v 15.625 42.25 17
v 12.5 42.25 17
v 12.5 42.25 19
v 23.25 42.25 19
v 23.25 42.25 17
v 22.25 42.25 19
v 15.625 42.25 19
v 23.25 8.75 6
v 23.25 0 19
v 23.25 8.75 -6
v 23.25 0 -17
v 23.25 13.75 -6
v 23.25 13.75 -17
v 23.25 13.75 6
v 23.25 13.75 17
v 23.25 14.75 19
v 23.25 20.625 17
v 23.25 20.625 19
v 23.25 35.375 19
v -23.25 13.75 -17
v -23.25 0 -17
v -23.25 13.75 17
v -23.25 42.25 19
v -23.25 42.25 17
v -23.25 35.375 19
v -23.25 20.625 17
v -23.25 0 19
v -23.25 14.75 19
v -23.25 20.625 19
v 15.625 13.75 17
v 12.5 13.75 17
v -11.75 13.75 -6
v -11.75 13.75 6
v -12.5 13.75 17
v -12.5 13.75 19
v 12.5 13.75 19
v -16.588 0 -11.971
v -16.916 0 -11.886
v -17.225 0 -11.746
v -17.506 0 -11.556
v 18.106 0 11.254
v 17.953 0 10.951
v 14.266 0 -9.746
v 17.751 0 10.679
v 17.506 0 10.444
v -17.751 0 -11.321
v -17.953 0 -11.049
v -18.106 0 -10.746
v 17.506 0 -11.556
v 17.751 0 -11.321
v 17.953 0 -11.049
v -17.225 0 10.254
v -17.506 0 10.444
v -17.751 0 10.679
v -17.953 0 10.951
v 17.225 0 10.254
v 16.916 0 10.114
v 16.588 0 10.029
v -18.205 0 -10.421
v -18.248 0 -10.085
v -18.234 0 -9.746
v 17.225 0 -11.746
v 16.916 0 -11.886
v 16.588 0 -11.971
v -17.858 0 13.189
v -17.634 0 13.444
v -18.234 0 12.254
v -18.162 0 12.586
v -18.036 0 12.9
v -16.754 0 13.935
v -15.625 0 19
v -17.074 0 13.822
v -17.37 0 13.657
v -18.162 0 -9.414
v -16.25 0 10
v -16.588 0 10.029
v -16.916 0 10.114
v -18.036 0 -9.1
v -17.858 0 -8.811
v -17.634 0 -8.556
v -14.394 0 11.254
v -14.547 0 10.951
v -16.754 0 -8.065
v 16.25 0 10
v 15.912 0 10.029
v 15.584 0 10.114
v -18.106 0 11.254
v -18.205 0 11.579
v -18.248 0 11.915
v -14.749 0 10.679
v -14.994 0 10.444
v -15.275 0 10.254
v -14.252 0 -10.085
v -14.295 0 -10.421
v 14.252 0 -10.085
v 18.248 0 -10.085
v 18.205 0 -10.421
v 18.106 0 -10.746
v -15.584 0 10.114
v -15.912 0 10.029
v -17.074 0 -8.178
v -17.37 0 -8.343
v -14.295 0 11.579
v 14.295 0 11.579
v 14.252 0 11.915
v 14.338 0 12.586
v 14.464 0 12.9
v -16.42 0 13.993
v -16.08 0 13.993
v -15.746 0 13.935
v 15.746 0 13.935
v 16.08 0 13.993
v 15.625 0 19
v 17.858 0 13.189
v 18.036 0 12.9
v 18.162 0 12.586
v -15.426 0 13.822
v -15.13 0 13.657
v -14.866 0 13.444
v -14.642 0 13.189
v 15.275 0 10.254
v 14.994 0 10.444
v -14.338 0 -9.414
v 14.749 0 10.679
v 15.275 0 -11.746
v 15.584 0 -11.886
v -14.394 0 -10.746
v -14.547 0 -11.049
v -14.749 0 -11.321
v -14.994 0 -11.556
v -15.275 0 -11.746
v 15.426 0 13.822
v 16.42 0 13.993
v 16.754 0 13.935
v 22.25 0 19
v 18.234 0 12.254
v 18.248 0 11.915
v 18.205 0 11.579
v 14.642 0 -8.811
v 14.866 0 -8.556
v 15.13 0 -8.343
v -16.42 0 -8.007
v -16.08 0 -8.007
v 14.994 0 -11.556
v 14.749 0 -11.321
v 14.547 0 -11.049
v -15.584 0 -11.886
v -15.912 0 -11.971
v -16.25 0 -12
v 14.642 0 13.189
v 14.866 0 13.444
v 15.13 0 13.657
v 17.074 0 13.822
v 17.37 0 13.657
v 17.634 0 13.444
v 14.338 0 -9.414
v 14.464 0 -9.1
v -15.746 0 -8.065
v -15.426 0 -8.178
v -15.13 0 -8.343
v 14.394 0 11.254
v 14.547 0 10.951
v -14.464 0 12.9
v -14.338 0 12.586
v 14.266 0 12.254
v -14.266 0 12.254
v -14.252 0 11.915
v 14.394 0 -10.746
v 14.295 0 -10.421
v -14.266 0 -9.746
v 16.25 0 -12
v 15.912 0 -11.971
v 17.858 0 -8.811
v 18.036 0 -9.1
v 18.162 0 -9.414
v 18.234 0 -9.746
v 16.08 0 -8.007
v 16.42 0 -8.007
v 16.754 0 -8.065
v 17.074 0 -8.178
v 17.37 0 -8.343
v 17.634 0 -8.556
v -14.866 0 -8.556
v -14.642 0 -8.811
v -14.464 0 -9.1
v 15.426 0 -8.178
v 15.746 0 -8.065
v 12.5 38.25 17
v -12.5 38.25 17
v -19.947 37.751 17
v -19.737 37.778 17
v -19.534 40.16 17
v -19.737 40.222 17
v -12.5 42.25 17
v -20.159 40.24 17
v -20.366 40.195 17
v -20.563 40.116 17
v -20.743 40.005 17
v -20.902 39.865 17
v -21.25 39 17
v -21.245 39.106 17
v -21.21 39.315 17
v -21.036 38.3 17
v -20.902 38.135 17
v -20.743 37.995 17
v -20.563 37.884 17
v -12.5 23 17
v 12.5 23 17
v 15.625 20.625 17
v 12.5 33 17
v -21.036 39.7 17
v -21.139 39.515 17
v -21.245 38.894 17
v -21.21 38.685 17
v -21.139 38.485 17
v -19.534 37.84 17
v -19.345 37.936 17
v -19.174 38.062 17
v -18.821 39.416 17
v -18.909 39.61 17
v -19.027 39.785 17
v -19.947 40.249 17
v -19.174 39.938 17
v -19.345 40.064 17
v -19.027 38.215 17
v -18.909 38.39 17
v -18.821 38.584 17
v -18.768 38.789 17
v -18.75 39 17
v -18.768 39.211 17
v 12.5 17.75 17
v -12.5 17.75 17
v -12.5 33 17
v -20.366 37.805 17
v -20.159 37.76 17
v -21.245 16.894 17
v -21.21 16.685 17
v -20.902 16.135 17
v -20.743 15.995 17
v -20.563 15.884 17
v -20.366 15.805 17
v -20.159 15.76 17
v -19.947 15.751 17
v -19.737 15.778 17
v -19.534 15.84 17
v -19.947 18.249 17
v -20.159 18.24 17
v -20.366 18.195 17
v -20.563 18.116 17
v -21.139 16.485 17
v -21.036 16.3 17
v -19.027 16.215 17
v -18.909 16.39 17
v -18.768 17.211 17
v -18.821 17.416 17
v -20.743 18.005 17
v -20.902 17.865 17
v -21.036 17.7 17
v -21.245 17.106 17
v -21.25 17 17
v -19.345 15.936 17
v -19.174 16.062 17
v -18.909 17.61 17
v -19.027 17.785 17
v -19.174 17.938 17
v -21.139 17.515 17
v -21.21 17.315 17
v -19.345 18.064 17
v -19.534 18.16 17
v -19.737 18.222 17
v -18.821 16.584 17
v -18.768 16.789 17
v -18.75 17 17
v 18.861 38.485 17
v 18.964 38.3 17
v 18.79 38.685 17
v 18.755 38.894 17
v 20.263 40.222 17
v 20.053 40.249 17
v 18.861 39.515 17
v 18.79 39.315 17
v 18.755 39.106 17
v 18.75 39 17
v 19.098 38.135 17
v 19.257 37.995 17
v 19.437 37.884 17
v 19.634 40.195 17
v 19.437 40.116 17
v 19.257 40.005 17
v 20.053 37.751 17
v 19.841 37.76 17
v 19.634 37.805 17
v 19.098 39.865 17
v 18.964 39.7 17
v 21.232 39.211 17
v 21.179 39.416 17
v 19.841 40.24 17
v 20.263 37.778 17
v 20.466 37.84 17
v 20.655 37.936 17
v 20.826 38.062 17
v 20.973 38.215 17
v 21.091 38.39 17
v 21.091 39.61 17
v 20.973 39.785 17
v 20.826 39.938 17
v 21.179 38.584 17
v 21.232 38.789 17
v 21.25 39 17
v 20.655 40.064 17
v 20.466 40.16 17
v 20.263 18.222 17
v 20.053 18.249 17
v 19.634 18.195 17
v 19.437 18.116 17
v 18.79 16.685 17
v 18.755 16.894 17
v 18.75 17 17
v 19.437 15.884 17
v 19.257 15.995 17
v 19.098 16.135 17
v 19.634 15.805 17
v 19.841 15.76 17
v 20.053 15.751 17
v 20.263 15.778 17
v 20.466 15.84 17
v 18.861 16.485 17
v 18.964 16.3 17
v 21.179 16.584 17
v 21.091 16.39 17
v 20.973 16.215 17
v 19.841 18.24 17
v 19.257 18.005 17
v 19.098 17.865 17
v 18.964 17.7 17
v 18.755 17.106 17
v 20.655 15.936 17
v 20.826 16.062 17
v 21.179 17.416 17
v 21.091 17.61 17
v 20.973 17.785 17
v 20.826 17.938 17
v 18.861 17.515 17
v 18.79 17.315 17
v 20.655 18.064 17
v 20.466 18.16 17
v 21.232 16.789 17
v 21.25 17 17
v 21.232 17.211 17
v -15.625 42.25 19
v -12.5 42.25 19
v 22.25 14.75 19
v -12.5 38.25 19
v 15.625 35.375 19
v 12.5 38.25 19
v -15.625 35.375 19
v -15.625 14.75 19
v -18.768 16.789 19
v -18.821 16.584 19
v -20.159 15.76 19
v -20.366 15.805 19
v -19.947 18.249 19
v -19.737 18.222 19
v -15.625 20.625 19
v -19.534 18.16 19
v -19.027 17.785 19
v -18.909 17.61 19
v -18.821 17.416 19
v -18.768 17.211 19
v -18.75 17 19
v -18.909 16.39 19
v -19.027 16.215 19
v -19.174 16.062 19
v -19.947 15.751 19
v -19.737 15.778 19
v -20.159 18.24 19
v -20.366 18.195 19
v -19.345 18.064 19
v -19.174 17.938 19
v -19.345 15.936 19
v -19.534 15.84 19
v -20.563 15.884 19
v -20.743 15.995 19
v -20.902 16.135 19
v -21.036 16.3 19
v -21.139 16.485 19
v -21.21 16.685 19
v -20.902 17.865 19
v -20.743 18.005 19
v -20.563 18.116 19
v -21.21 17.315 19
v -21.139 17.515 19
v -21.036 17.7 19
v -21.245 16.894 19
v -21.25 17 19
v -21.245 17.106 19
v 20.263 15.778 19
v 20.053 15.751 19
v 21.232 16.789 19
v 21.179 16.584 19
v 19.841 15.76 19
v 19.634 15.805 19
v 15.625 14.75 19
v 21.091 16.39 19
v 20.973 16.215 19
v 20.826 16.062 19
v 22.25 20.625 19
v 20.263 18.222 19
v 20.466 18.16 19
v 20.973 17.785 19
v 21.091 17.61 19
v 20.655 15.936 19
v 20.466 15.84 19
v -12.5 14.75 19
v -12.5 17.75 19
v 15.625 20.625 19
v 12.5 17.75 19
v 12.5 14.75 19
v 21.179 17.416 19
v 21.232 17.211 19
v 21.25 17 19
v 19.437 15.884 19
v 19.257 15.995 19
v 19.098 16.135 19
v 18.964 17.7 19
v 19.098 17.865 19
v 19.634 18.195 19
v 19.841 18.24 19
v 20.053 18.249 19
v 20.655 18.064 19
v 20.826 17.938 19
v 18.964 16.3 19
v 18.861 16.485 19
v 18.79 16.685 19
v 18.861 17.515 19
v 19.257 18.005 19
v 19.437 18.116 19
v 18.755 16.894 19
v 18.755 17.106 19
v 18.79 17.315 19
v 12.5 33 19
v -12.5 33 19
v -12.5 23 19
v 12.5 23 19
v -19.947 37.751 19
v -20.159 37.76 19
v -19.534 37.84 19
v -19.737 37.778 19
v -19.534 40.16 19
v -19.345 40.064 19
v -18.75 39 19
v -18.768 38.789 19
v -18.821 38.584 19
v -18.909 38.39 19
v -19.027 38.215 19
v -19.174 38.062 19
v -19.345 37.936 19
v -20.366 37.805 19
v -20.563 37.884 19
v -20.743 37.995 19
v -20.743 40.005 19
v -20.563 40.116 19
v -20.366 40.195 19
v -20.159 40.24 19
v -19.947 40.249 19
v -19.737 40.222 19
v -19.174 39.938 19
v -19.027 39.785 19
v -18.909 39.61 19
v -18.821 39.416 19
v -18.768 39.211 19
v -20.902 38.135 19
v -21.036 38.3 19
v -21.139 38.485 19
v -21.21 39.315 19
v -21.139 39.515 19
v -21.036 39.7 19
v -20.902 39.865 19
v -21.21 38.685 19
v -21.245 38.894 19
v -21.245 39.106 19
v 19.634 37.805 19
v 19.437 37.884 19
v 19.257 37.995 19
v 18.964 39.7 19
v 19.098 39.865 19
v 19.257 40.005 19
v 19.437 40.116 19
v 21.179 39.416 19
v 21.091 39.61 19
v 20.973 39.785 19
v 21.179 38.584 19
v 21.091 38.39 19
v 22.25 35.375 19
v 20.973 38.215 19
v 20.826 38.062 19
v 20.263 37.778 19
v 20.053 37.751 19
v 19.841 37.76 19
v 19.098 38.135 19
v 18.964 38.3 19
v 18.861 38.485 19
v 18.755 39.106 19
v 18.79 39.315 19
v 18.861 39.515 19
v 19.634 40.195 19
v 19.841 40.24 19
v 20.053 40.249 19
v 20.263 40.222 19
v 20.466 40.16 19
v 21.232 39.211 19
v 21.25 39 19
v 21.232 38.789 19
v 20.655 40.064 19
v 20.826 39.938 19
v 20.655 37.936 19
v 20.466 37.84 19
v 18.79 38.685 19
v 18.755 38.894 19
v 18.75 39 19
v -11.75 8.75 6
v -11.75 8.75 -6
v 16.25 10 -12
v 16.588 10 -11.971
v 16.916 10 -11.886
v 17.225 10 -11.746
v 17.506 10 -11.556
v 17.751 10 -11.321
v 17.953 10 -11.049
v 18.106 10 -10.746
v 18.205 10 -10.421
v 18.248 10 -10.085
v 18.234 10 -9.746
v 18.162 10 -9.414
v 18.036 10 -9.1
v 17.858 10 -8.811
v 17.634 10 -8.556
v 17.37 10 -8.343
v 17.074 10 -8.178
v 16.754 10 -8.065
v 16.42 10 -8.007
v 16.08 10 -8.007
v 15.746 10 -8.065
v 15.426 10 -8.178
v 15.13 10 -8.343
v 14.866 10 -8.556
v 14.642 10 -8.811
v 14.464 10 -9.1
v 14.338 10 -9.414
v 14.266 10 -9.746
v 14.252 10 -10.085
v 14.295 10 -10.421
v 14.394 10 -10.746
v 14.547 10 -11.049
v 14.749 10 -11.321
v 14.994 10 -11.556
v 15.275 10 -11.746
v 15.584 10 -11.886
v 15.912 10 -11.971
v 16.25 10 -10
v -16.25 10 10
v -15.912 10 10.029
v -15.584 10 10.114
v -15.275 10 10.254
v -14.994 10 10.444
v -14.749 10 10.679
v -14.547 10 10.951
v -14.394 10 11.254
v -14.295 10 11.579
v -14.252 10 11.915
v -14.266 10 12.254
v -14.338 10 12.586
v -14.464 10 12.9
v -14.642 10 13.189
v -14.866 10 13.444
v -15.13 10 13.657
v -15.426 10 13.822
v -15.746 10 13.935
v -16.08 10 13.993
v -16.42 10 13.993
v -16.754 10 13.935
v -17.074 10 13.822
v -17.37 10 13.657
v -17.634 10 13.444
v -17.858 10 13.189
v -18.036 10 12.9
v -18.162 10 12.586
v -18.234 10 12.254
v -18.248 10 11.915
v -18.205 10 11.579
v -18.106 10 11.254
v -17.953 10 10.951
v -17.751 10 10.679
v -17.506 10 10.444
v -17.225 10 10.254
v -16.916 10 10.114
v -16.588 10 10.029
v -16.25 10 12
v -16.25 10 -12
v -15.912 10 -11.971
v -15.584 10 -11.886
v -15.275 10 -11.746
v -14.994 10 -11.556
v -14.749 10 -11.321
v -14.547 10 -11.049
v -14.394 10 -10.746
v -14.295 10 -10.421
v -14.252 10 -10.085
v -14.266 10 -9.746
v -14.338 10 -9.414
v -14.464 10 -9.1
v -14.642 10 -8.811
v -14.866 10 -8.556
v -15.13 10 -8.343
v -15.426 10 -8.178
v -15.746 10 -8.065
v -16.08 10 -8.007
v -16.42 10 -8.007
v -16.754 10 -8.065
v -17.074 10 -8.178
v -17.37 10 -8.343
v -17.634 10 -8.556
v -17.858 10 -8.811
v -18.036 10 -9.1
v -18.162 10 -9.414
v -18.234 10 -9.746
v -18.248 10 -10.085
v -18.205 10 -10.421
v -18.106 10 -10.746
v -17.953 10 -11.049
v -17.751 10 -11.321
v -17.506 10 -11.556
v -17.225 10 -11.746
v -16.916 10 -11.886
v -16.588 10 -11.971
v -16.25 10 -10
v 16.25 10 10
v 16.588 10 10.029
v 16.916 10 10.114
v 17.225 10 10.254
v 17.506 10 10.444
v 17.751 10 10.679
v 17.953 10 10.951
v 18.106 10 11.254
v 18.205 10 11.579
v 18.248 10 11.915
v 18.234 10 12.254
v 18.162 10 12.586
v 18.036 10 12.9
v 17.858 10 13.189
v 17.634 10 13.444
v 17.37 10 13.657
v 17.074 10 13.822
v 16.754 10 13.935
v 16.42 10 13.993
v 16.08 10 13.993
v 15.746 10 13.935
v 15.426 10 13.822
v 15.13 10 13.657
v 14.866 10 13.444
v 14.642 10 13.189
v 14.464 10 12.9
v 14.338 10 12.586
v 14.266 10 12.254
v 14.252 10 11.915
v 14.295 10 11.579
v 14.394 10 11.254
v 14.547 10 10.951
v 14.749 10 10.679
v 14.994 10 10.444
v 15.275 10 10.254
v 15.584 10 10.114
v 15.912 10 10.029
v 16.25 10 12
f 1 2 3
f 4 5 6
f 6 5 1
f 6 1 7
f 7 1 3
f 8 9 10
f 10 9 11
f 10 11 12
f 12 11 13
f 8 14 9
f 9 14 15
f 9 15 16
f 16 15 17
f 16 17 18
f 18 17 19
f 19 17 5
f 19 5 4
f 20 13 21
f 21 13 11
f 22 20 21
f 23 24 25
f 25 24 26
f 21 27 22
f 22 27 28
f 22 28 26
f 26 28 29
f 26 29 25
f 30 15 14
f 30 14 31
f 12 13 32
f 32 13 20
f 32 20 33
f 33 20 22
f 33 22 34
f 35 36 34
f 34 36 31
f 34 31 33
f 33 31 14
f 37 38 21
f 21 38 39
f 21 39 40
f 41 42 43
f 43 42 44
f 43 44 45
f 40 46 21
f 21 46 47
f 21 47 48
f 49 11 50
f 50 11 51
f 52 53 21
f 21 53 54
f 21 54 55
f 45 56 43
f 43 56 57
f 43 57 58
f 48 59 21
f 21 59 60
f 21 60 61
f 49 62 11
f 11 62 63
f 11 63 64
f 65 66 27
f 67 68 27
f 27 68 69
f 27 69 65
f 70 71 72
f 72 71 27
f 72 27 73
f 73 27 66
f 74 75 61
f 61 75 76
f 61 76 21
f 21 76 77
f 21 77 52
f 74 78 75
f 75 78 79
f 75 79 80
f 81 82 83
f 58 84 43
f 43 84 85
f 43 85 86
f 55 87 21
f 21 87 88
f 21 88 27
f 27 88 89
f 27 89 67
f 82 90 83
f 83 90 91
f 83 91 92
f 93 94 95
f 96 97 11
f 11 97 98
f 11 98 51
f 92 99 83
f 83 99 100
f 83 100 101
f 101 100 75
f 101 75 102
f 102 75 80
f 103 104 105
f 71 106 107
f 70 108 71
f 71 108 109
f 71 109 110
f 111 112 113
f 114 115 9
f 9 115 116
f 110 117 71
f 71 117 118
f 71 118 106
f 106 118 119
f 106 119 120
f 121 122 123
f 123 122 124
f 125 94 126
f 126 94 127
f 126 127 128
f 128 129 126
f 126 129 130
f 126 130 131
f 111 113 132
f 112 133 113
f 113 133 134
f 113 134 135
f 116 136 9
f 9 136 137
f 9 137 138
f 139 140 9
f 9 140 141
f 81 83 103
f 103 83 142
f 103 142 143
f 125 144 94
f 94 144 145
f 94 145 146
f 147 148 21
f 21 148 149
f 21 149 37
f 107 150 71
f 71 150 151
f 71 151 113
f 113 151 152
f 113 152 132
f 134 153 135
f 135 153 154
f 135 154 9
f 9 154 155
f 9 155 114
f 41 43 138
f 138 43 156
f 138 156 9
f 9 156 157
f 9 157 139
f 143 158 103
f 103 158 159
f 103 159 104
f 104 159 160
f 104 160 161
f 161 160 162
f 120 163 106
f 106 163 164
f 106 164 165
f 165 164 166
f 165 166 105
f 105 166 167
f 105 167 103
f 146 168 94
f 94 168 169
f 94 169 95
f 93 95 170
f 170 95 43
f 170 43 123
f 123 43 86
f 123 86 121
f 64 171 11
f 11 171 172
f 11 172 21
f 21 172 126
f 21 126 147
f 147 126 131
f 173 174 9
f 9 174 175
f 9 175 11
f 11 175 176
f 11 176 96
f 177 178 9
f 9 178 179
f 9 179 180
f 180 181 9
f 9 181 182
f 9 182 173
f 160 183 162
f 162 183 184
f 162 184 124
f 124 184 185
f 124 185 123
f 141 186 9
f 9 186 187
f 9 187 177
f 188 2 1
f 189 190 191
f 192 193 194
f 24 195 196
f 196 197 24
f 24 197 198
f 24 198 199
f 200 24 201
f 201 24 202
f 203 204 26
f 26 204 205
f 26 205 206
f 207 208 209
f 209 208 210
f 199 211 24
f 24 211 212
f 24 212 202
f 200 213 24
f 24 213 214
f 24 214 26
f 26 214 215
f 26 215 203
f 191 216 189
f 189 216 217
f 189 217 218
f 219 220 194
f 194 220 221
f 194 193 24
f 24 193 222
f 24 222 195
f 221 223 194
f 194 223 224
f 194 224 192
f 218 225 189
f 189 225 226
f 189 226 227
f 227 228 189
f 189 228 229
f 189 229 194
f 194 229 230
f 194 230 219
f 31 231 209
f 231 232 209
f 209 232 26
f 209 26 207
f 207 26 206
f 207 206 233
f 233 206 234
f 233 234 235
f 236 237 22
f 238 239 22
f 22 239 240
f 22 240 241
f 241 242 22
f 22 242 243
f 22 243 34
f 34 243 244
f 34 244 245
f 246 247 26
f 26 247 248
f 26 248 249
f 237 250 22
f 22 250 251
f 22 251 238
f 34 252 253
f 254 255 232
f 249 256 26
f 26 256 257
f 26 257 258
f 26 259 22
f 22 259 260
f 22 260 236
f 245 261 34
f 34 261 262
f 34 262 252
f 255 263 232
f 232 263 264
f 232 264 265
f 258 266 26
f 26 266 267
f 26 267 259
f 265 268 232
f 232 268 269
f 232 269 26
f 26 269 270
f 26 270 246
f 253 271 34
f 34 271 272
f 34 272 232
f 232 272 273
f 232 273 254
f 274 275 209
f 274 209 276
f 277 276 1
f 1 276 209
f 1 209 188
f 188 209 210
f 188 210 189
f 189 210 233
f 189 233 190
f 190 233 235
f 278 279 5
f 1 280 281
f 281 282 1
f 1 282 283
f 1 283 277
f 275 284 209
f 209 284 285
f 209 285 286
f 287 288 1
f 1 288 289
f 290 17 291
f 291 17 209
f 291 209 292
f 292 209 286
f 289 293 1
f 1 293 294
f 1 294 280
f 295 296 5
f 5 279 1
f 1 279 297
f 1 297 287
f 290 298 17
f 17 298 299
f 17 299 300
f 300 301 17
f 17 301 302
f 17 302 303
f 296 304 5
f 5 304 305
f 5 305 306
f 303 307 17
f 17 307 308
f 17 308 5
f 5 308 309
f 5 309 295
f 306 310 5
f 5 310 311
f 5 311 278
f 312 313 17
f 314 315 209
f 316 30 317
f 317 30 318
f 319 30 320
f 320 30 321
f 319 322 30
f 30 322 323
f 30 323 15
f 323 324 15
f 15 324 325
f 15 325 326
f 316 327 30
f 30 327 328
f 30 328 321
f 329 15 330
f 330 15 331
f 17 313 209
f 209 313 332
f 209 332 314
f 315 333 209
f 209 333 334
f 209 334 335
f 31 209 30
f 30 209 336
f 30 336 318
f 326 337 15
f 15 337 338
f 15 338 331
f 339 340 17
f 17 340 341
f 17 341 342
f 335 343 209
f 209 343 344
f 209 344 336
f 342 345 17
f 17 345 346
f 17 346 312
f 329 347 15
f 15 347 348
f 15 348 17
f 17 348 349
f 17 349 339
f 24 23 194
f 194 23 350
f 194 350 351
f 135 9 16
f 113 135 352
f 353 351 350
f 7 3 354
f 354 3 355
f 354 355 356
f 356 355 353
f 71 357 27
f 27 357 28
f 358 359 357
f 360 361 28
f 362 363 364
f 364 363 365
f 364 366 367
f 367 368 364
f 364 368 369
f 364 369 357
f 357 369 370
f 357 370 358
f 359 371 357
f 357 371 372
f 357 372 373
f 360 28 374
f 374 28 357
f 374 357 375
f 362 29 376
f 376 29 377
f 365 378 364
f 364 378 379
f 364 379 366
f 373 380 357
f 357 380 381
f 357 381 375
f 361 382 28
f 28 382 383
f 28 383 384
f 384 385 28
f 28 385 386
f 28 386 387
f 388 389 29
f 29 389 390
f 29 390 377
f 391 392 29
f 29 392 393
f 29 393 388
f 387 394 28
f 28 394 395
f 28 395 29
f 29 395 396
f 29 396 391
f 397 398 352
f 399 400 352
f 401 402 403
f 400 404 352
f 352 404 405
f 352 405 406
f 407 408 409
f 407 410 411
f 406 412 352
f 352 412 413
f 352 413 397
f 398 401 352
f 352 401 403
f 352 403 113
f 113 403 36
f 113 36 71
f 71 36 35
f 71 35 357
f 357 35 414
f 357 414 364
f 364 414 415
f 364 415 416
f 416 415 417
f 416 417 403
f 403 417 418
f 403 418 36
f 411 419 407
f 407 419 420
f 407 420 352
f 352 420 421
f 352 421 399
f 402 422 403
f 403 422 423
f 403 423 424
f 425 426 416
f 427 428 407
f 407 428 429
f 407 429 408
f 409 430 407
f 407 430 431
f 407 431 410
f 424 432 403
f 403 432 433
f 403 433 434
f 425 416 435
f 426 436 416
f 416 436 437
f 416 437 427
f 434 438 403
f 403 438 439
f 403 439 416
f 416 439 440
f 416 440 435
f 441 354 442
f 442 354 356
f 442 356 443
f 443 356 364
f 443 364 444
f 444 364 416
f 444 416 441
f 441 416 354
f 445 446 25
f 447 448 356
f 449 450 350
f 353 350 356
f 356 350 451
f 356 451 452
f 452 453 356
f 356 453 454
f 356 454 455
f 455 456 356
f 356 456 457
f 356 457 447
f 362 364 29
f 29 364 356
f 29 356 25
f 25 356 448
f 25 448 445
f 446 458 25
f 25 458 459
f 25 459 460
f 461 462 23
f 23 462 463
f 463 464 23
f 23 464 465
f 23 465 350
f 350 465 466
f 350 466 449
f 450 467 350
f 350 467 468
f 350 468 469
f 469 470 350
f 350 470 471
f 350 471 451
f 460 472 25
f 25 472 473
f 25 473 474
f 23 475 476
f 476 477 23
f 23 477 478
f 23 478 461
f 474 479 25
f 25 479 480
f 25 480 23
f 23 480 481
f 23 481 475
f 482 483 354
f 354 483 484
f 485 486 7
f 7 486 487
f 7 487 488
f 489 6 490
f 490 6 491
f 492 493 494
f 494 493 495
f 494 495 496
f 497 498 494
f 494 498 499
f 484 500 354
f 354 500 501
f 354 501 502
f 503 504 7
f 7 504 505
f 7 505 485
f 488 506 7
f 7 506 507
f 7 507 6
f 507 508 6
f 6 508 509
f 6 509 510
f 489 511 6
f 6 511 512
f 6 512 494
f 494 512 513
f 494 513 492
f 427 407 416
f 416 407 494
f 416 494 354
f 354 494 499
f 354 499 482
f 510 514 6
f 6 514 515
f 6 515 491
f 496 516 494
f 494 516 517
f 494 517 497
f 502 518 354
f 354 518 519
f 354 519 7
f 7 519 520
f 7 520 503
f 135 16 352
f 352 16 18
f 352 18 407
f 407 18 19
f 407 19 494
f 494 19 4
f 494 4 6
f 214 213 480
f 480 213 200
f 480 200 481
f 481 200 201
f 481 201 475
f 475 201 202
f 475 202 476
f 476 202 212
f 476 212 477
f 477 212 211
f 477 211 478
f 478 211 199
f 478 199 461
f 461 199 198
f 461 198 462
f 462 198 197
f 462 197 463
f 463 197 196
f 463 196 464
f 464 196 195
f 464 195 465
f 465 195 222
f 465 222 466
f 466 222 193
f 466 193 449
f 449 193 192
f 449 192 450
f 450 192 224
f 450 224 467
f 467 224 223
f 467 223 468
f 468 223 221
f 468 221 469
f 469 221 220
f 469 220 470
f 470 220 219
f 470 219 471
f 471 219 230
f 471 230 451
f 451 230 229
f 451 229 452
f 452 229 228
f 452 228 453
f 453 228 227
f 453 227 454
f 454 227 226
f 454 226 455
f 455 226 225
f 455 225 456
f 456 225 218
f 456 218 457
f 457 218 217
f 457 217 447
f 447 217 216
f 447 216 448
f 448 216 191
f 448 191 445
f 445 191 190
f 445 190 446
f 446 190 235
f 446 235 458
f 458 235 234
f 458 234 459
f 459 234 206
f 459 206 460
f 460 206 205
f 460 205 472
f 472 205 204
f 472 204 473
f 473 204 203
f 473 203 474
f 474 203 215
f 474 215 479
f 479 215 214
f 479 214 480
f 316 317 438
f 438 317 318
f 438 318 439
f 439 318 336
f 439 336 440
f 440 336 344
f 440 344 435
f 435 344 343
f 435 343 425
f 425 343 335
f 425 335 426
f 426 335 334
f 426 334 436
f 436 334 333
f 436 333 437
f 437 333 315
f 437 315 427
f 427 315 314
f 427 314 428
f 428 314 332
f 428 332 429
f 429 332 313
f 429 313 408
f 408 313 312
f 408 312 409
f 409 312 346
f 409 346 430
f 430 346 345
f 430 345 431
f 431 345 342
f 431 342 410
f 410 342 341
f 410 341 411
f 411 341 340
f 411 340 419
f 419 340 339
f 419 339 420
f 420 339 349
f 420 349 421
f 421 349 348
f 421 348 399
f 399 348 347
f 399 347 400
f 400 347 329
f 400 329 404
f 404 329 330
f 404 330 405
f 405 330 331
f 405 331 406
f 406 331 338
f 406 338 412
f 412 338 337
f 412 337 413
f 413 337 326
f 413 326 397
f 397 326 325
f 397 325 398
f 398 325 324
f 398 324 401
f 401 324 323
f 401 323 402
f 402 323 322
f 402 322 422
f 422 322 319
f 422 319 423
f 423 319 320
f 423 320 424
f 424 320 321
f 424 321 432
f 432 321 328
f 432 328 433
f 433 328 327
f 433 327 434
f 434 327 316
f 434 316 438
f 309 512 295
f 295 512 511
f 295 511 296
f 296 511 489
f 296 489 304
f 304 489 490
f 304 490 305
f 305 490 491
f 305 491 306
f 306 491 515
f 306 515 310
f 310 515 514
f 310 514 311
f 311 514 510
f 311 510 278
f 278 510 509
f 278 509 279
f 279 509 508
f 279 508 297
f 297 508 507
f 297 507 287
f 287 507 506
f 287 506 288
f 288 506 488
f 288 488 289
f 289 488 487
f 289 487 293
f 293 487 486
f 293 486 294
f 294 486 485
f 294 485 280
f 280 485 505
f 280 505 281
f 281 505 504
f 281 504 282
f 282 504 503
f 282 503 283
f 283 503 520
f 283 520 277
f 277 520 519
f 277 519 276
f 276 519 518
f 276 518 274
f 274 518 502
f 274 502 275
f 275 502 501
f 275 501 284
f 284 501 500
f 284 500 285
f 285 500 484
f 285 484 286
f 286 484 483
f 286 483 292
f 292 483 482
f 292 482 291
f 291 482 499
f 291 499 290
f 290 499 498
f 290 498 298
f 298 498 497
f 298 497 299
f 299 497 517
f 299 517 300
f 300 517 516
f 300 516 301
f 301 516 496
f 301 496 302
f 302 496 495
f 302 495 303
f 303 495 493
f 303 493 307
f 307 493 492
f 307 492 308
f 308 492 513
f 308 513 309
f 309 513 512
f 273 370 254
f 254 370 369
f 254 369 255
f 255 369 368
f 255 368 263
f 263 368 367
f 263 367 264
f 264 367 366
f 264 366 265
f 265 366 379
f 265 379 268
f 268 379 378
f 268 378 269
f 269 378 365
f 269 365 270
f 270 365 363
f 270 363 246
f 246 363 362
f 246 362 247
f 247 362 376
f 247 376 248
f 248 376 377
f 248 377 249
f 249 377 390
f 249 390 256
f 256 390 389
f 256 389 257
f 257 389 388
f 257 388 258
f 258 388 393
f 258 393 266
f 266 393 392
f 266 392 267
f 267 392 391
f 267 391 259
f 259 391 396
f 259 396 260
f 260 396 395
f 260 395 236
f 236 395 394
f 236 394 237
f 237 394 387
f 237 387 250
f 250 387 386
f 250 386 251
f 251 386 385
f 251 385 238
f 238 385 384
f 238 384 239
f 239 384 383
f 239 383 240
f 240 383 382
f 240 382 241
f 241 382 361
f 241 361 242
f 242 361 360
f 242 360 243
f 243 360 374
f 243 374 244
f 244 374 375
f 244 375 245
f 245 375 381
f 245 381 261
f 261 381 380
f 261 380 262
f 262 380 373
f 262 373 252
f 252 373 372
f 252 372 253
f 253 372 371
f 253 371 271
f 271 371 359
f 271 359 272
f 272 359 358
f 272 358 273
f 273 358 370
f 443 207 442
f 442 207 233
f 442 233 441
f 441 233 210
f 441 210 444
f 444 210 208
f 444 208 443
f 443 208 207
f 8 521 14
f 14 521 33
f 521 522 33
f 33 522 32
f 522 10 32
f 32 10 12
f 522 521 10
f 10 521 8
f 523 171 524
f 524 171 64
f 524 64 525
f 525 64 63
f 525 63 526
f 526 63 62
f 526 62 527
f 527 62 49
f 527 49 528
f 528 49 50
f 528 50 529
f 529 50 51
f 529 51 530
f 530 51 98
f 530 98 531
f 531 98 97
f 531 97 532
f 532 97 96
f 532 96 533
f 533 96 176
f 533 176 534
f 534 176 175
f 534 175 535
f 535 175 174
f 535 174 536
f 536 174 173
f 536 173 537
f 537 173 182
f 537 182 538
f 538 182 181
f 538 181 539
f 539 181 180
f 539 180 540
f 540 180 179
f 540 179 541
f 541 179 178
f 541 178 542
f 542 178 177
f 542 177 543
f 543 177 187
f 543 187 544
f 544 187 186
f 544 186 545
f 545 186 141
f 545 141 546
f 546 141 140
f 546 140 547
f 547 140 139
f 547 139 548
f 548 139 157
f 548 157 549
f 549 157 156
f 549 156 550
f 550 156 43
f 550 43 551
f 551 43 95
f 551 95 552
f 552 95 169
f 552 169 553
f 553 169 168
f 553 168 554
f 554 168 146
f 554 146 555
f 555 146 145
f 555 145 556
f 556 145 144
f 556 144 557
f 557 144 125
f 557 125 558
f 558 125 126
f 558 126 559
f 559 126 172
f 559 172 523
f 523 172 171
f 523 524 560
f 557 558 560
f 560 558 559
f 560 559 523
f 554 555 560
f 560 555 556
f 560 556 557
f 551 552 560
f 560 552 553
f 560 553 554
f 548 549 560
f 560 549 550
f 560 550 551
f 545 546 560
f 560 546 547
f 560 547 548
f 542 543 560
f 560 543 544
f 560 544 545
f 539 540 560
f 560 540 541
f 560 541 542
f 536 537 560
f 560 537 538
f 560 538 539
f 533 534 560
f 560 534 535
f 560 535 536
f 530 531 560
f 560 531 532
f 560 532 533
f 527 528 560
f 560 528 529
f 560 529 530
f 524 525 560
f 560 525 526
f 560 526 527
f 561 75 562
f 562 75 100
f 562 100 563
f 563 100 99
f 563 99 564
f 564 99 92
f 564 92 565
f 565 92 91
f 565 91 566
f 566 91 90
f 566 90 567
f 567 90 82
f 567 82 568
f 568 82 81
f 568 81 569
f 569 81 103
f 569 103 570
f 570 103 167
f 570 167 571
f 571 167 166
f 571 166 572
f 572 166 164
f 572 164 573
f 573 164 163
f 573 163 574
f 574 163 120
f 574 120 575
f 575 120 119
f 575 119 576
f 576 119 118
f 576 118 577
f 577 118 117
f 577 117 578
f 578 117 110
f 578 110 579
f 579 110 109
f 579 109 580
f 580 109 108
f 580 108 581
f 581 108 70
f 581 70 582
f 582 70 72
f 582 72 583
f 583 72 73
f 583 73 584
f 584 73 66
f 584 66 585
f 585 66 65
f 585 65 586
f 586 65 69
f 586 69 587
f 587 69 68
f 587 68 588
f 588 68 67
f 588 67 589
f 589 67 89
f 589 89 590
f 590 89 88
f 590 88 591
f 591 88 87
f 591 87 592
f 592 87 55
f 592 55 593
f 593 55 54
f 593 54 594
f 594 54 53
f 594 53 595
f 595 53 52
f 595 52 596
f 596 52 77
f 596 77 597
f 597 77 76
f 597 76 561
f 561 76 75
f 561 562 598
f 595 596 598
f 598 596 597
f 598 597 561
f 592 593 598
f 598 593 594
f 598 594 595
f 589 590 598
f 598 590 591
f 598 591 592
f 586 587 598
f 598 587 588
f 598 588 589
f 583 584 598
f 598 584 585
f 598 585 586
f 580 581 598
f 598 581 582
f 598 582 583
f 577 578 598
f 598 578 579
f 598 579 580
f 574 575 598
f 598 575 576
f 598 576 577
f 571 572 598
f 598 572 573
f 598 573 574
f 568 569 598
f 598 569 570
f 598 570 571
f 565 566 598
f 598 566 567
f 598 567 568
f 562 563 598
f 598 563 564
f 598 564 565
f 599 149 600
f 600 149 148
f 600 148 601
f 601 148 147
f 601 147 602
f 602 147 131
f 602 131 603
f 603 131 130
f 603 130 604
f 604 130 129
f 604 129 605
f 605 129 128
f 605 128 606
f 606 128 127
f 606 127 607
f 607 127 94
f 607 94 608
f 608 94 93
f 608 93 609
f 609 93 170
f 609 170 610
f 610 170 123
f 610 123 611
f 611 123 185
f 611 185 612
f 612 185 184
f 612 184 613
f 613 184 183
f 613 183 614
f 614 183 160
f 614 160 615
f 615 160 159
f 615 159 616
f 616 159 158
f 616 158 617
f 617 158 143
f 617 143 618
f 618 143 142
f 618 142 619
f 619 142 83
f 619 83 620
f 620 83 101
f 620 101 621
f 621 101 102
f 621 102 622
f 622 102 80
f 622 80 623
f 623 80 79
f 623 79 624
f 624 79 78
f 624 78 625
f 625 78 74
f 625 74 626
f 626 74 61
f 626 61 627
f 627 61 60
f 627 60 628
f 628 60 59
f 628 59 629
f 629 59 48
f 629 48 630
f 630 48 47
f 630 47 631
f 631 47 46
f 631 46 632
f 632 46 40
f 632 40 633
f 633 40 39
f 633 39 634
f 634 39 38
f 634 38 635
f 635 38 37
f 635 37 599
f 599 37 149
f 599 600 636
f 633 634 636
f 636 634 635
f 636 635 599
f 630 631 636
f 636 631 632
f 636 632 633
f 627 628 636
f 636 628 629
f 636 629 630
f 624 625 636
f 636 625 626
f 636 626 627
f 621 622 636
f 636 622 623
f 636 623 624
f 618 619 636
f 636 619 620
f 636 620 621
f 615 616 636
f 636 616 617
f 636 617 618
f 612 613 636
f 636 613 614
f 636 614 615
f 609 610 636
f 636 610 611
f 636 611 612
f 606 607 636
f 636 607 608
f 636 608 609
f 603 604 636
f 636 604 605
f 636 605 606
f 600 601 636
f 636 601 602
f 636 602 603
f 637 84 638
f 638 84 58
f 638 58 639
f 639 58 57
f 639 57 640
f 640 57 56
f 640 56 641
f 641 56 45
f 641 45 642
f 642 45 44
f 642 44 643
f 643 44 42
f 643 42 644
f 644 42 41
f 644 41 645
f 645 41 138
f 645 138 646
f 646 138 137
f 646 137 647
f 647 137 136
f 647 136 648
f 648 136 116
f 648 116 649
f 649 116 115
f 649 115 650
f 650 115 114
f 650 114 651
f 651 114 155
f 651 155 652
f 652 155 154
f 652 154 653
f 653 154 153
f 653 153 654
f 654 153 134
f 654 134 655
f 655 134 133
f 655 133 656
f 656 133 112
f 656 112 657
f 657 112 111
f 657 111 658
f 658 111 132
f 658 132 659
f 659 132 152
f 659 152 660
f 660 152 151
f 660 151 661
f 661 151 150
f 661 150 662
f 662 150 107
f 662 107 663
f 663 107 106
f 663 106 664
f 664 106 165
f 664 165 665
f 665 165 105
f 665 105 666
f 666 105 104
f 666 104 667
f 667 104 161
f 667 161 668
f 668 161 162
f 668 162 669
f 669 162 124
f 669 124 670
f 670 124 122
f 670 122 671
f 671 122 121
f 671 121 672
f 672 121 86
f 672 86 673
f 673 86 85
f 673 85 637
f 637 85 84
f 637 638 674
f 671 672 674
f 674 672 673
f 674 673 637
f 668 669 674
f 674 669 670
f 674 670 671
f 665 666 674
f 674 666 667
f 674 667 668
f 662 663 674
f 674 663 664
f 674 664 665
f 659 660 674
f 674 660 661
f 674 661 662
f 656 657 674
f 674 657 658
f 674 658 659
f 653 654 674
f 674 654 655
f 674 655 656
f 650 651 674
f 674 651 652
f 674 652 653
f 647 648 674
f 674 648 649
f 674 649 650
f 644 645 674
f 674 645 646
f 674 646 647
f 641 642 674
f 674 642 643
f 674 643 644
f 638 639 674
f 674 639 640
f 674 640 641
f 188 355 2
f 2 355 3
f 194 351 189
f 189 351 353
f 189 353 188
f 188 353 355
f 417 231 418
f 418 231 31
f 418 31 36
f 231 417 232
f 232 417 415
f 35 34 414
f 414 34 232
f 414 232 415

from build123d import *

# Parameters (mm, degrees)
SKETCH1_W           = 46.5
SKETCH1_H           = 34
BOSS_EXTRUDE1_DEPTH = 13.75
SKETCH2_W           = 46.5
SKETCH2_H           = 42.25
BOSS_EXTRUDE2_DEPTH = 2
CUT_EXTRUDE1_REACH  = 62.18
SKETCH3_R           = 1.25
SKETCH3_W           = 25
SKETCH3_H           = 10
SKETCH4_W           = 35
SKETCH4_H           = 12
CUT_EXTRUDE2_DEPTH  = 5
SKETCH6_R           = 2
CUT_EXTRUDE3_DEPTH  = 10
SKETCH7_W           = 25
SKETCH7_H           = 4
CUT_EXTRUDE4_DEPTH  = 10


with BuildPart() as part:
    # Sketch1 → Boss-Extrude1 (new body)
    with BuildSketch(Plane(origin=(0, 0, 0), x_dir=(1, 0, 0), z_dir=(0, 1, 0))):
        Rectangle(SKETCH1_W, SKETCH1_H)
    extrude(amount=BOSS_EXTRUDE1_DEPTH)

    # Sketch2 → Boss-Extrude2 (add)
    with BuildSketch(Plane.XY.offset(17)):
        with Locations((0, 21.125)):
            Rectangle(SKETCH2_W, SKETCH2_H)
    extrude(amount=BOSS_EXTRUDE2_DEPTH)

    # Sketch3 → Cut-Extrude1 (cut, up to next)
    with BuildSketch(Plane.XY.offset(19), mode=Mode.PRIVATE) as cut_extrude1_sk1:
        with Locations((-20, 39)):
            Circle(SKETCH3_R)
    cut_extrude1_tool1 = extrude(cut_extrude1_sk1.sketch, amount=-CUT_EXTRUDE1_REACH, mode=Mode.PRIVATE) & part.part
    # Sketch3 → Cut-Extrude1 (cut, up to next)
    with BuildSketch(Plane.XY.offset(19), mode=Mode.PRIVATE) as cut_extrude1_sk2:
        with Locations(Location((20, 39, 0), (0, 0, 180))):
            Circle(SKETCH3_R)
    cut_extrude1_tool2 = extrude(cut_extrude1_sk2.sketch, amount=-CUT_EXTRUDE1_REACH, mode=Mode.PRIVATE) & part.part
    # Sketch3 → Cut-Extrude1 (cut, up to next)
    with BuildSketch(Plane.XY.offset(19), mode=Mode.PRIVATE) as cut_extrude1_sk3:
        with Locations((20, 17)):
            Circle(SKETCH3_R)
    cut_extrude1_tool3 = extrude(cut_extrude1_sk3.sketch, amount=-CUT_EXTRUDE1_REACH, mode=Mode.PRIVATE) & part.part
    # Sketch3 → Cut-Extrude1 (cut, up to next)
    with BuildSketch(Plane.XY.offset(19), mode=Mode.PRIVATE) as cut_extrude1_sk4:
        with Locations(Location((-20, 17, 0), (0, 0, 180))):
            Circle(SKETCH3_R)
    cut_extrude1_tool4 = extrude(cut_extrude1_sk4.sketch, amount=-CUT_EXTRUDE1_REACH, mode=Mode.PRIVATE) & part.part
    # Sketch3 → Cut-Extrude1 (cut, up to next)
    with BuildSketch(Plane.XY.offset(19), mode=Mode.PRIVATE) as cut_extrude1_sk5:
        with Locations((0, 28)):
            Rectangle(SKETCH3_W, SKETCH3_H)
    cut_extrude1_tool5 = extrude(cut_extrude1_sk5.sketch, amount=-CUT_EXTRUDE1_REACH, mode=Mode.PRIVATE) & part.part
    add(cut_extrude1_tool1.solids().sort_by_distance((-20, 39, 19))[0], mode=Mode.SUBTRACT)
    add(cut_extrude1_tool2.solids().sort_by_distance((20, 39, 19))[0], mode=Mode.SUBTRACT)
    add(cut_extrude1_tool3.solids().sort_by_distance((20, 17, 19))[0], mode=Mode.SUBTRACT)
    add(cut_extrude1_tool4.solids().sort_by_distance((-20, 17, 19))[0], mode=Mode.SUBTRACT)
    add(cut_extrude1_tool5.solids().sort_by_distance((0, 28, 19))[0], mode=Mode.SUBTRACT)

    # Sketch4 → Cut-Extrude2 (cut)
    with BuildSketch(Plane(origin=(0, 13.75, 0), x_dir=(1, 0, 0), z_dir=(0, 1, 0))):
        with Locations((5.75, 0)):
            Rectangle(SKETCH4_W, SKETCH4_H)
    extrude(amount=-CUT_EXTRUDE2_DEPTH, mode=Mode.SUBTRACT)

    # Sketch6 → Cut-Extrude3 (cut)
    with BuildSketch(Plane.XZ):
        with Locations(Location((16.25, -10, 0), (0, 0, 270))):
            Circle(SKETCH6_R)
        with Locations(Location((16.25, 12, 0), (0, 0, 270))):
            Circle(SKETCH6_R)
        with Locations(Location((-16.25, -10, 0), (0, 0, 270))):
            Circle(SKETCH6_R)
        with Locations(Location((-16.25, 12, 0), (0, 0, 270))):
            Circle(SKETCH6_R)
    extrude(amount=-CUT_EXTRUDE3_DEPTH, mode=Mode.SUBTRACT)

    # Sketch7 → Cut-Extrude4 (cut)
    with BuildSketch(Plane(origin=(0, 0, 17), x_dir=(-1, 0, 0), z_dir=(0, 0, -1))):
        with Locations((0, 15.75)):
            Rectangle(SKETCH7_W, SKETCH7_H)
        with Locations((0, 40.25)):
            Rectangle(SKETCH7_W, SKETCH7_H)
    extrude(amount=-CUT_EXTRUDE4_DEPTH, mode=Mode.SUBTRACT)


solid = part.part
